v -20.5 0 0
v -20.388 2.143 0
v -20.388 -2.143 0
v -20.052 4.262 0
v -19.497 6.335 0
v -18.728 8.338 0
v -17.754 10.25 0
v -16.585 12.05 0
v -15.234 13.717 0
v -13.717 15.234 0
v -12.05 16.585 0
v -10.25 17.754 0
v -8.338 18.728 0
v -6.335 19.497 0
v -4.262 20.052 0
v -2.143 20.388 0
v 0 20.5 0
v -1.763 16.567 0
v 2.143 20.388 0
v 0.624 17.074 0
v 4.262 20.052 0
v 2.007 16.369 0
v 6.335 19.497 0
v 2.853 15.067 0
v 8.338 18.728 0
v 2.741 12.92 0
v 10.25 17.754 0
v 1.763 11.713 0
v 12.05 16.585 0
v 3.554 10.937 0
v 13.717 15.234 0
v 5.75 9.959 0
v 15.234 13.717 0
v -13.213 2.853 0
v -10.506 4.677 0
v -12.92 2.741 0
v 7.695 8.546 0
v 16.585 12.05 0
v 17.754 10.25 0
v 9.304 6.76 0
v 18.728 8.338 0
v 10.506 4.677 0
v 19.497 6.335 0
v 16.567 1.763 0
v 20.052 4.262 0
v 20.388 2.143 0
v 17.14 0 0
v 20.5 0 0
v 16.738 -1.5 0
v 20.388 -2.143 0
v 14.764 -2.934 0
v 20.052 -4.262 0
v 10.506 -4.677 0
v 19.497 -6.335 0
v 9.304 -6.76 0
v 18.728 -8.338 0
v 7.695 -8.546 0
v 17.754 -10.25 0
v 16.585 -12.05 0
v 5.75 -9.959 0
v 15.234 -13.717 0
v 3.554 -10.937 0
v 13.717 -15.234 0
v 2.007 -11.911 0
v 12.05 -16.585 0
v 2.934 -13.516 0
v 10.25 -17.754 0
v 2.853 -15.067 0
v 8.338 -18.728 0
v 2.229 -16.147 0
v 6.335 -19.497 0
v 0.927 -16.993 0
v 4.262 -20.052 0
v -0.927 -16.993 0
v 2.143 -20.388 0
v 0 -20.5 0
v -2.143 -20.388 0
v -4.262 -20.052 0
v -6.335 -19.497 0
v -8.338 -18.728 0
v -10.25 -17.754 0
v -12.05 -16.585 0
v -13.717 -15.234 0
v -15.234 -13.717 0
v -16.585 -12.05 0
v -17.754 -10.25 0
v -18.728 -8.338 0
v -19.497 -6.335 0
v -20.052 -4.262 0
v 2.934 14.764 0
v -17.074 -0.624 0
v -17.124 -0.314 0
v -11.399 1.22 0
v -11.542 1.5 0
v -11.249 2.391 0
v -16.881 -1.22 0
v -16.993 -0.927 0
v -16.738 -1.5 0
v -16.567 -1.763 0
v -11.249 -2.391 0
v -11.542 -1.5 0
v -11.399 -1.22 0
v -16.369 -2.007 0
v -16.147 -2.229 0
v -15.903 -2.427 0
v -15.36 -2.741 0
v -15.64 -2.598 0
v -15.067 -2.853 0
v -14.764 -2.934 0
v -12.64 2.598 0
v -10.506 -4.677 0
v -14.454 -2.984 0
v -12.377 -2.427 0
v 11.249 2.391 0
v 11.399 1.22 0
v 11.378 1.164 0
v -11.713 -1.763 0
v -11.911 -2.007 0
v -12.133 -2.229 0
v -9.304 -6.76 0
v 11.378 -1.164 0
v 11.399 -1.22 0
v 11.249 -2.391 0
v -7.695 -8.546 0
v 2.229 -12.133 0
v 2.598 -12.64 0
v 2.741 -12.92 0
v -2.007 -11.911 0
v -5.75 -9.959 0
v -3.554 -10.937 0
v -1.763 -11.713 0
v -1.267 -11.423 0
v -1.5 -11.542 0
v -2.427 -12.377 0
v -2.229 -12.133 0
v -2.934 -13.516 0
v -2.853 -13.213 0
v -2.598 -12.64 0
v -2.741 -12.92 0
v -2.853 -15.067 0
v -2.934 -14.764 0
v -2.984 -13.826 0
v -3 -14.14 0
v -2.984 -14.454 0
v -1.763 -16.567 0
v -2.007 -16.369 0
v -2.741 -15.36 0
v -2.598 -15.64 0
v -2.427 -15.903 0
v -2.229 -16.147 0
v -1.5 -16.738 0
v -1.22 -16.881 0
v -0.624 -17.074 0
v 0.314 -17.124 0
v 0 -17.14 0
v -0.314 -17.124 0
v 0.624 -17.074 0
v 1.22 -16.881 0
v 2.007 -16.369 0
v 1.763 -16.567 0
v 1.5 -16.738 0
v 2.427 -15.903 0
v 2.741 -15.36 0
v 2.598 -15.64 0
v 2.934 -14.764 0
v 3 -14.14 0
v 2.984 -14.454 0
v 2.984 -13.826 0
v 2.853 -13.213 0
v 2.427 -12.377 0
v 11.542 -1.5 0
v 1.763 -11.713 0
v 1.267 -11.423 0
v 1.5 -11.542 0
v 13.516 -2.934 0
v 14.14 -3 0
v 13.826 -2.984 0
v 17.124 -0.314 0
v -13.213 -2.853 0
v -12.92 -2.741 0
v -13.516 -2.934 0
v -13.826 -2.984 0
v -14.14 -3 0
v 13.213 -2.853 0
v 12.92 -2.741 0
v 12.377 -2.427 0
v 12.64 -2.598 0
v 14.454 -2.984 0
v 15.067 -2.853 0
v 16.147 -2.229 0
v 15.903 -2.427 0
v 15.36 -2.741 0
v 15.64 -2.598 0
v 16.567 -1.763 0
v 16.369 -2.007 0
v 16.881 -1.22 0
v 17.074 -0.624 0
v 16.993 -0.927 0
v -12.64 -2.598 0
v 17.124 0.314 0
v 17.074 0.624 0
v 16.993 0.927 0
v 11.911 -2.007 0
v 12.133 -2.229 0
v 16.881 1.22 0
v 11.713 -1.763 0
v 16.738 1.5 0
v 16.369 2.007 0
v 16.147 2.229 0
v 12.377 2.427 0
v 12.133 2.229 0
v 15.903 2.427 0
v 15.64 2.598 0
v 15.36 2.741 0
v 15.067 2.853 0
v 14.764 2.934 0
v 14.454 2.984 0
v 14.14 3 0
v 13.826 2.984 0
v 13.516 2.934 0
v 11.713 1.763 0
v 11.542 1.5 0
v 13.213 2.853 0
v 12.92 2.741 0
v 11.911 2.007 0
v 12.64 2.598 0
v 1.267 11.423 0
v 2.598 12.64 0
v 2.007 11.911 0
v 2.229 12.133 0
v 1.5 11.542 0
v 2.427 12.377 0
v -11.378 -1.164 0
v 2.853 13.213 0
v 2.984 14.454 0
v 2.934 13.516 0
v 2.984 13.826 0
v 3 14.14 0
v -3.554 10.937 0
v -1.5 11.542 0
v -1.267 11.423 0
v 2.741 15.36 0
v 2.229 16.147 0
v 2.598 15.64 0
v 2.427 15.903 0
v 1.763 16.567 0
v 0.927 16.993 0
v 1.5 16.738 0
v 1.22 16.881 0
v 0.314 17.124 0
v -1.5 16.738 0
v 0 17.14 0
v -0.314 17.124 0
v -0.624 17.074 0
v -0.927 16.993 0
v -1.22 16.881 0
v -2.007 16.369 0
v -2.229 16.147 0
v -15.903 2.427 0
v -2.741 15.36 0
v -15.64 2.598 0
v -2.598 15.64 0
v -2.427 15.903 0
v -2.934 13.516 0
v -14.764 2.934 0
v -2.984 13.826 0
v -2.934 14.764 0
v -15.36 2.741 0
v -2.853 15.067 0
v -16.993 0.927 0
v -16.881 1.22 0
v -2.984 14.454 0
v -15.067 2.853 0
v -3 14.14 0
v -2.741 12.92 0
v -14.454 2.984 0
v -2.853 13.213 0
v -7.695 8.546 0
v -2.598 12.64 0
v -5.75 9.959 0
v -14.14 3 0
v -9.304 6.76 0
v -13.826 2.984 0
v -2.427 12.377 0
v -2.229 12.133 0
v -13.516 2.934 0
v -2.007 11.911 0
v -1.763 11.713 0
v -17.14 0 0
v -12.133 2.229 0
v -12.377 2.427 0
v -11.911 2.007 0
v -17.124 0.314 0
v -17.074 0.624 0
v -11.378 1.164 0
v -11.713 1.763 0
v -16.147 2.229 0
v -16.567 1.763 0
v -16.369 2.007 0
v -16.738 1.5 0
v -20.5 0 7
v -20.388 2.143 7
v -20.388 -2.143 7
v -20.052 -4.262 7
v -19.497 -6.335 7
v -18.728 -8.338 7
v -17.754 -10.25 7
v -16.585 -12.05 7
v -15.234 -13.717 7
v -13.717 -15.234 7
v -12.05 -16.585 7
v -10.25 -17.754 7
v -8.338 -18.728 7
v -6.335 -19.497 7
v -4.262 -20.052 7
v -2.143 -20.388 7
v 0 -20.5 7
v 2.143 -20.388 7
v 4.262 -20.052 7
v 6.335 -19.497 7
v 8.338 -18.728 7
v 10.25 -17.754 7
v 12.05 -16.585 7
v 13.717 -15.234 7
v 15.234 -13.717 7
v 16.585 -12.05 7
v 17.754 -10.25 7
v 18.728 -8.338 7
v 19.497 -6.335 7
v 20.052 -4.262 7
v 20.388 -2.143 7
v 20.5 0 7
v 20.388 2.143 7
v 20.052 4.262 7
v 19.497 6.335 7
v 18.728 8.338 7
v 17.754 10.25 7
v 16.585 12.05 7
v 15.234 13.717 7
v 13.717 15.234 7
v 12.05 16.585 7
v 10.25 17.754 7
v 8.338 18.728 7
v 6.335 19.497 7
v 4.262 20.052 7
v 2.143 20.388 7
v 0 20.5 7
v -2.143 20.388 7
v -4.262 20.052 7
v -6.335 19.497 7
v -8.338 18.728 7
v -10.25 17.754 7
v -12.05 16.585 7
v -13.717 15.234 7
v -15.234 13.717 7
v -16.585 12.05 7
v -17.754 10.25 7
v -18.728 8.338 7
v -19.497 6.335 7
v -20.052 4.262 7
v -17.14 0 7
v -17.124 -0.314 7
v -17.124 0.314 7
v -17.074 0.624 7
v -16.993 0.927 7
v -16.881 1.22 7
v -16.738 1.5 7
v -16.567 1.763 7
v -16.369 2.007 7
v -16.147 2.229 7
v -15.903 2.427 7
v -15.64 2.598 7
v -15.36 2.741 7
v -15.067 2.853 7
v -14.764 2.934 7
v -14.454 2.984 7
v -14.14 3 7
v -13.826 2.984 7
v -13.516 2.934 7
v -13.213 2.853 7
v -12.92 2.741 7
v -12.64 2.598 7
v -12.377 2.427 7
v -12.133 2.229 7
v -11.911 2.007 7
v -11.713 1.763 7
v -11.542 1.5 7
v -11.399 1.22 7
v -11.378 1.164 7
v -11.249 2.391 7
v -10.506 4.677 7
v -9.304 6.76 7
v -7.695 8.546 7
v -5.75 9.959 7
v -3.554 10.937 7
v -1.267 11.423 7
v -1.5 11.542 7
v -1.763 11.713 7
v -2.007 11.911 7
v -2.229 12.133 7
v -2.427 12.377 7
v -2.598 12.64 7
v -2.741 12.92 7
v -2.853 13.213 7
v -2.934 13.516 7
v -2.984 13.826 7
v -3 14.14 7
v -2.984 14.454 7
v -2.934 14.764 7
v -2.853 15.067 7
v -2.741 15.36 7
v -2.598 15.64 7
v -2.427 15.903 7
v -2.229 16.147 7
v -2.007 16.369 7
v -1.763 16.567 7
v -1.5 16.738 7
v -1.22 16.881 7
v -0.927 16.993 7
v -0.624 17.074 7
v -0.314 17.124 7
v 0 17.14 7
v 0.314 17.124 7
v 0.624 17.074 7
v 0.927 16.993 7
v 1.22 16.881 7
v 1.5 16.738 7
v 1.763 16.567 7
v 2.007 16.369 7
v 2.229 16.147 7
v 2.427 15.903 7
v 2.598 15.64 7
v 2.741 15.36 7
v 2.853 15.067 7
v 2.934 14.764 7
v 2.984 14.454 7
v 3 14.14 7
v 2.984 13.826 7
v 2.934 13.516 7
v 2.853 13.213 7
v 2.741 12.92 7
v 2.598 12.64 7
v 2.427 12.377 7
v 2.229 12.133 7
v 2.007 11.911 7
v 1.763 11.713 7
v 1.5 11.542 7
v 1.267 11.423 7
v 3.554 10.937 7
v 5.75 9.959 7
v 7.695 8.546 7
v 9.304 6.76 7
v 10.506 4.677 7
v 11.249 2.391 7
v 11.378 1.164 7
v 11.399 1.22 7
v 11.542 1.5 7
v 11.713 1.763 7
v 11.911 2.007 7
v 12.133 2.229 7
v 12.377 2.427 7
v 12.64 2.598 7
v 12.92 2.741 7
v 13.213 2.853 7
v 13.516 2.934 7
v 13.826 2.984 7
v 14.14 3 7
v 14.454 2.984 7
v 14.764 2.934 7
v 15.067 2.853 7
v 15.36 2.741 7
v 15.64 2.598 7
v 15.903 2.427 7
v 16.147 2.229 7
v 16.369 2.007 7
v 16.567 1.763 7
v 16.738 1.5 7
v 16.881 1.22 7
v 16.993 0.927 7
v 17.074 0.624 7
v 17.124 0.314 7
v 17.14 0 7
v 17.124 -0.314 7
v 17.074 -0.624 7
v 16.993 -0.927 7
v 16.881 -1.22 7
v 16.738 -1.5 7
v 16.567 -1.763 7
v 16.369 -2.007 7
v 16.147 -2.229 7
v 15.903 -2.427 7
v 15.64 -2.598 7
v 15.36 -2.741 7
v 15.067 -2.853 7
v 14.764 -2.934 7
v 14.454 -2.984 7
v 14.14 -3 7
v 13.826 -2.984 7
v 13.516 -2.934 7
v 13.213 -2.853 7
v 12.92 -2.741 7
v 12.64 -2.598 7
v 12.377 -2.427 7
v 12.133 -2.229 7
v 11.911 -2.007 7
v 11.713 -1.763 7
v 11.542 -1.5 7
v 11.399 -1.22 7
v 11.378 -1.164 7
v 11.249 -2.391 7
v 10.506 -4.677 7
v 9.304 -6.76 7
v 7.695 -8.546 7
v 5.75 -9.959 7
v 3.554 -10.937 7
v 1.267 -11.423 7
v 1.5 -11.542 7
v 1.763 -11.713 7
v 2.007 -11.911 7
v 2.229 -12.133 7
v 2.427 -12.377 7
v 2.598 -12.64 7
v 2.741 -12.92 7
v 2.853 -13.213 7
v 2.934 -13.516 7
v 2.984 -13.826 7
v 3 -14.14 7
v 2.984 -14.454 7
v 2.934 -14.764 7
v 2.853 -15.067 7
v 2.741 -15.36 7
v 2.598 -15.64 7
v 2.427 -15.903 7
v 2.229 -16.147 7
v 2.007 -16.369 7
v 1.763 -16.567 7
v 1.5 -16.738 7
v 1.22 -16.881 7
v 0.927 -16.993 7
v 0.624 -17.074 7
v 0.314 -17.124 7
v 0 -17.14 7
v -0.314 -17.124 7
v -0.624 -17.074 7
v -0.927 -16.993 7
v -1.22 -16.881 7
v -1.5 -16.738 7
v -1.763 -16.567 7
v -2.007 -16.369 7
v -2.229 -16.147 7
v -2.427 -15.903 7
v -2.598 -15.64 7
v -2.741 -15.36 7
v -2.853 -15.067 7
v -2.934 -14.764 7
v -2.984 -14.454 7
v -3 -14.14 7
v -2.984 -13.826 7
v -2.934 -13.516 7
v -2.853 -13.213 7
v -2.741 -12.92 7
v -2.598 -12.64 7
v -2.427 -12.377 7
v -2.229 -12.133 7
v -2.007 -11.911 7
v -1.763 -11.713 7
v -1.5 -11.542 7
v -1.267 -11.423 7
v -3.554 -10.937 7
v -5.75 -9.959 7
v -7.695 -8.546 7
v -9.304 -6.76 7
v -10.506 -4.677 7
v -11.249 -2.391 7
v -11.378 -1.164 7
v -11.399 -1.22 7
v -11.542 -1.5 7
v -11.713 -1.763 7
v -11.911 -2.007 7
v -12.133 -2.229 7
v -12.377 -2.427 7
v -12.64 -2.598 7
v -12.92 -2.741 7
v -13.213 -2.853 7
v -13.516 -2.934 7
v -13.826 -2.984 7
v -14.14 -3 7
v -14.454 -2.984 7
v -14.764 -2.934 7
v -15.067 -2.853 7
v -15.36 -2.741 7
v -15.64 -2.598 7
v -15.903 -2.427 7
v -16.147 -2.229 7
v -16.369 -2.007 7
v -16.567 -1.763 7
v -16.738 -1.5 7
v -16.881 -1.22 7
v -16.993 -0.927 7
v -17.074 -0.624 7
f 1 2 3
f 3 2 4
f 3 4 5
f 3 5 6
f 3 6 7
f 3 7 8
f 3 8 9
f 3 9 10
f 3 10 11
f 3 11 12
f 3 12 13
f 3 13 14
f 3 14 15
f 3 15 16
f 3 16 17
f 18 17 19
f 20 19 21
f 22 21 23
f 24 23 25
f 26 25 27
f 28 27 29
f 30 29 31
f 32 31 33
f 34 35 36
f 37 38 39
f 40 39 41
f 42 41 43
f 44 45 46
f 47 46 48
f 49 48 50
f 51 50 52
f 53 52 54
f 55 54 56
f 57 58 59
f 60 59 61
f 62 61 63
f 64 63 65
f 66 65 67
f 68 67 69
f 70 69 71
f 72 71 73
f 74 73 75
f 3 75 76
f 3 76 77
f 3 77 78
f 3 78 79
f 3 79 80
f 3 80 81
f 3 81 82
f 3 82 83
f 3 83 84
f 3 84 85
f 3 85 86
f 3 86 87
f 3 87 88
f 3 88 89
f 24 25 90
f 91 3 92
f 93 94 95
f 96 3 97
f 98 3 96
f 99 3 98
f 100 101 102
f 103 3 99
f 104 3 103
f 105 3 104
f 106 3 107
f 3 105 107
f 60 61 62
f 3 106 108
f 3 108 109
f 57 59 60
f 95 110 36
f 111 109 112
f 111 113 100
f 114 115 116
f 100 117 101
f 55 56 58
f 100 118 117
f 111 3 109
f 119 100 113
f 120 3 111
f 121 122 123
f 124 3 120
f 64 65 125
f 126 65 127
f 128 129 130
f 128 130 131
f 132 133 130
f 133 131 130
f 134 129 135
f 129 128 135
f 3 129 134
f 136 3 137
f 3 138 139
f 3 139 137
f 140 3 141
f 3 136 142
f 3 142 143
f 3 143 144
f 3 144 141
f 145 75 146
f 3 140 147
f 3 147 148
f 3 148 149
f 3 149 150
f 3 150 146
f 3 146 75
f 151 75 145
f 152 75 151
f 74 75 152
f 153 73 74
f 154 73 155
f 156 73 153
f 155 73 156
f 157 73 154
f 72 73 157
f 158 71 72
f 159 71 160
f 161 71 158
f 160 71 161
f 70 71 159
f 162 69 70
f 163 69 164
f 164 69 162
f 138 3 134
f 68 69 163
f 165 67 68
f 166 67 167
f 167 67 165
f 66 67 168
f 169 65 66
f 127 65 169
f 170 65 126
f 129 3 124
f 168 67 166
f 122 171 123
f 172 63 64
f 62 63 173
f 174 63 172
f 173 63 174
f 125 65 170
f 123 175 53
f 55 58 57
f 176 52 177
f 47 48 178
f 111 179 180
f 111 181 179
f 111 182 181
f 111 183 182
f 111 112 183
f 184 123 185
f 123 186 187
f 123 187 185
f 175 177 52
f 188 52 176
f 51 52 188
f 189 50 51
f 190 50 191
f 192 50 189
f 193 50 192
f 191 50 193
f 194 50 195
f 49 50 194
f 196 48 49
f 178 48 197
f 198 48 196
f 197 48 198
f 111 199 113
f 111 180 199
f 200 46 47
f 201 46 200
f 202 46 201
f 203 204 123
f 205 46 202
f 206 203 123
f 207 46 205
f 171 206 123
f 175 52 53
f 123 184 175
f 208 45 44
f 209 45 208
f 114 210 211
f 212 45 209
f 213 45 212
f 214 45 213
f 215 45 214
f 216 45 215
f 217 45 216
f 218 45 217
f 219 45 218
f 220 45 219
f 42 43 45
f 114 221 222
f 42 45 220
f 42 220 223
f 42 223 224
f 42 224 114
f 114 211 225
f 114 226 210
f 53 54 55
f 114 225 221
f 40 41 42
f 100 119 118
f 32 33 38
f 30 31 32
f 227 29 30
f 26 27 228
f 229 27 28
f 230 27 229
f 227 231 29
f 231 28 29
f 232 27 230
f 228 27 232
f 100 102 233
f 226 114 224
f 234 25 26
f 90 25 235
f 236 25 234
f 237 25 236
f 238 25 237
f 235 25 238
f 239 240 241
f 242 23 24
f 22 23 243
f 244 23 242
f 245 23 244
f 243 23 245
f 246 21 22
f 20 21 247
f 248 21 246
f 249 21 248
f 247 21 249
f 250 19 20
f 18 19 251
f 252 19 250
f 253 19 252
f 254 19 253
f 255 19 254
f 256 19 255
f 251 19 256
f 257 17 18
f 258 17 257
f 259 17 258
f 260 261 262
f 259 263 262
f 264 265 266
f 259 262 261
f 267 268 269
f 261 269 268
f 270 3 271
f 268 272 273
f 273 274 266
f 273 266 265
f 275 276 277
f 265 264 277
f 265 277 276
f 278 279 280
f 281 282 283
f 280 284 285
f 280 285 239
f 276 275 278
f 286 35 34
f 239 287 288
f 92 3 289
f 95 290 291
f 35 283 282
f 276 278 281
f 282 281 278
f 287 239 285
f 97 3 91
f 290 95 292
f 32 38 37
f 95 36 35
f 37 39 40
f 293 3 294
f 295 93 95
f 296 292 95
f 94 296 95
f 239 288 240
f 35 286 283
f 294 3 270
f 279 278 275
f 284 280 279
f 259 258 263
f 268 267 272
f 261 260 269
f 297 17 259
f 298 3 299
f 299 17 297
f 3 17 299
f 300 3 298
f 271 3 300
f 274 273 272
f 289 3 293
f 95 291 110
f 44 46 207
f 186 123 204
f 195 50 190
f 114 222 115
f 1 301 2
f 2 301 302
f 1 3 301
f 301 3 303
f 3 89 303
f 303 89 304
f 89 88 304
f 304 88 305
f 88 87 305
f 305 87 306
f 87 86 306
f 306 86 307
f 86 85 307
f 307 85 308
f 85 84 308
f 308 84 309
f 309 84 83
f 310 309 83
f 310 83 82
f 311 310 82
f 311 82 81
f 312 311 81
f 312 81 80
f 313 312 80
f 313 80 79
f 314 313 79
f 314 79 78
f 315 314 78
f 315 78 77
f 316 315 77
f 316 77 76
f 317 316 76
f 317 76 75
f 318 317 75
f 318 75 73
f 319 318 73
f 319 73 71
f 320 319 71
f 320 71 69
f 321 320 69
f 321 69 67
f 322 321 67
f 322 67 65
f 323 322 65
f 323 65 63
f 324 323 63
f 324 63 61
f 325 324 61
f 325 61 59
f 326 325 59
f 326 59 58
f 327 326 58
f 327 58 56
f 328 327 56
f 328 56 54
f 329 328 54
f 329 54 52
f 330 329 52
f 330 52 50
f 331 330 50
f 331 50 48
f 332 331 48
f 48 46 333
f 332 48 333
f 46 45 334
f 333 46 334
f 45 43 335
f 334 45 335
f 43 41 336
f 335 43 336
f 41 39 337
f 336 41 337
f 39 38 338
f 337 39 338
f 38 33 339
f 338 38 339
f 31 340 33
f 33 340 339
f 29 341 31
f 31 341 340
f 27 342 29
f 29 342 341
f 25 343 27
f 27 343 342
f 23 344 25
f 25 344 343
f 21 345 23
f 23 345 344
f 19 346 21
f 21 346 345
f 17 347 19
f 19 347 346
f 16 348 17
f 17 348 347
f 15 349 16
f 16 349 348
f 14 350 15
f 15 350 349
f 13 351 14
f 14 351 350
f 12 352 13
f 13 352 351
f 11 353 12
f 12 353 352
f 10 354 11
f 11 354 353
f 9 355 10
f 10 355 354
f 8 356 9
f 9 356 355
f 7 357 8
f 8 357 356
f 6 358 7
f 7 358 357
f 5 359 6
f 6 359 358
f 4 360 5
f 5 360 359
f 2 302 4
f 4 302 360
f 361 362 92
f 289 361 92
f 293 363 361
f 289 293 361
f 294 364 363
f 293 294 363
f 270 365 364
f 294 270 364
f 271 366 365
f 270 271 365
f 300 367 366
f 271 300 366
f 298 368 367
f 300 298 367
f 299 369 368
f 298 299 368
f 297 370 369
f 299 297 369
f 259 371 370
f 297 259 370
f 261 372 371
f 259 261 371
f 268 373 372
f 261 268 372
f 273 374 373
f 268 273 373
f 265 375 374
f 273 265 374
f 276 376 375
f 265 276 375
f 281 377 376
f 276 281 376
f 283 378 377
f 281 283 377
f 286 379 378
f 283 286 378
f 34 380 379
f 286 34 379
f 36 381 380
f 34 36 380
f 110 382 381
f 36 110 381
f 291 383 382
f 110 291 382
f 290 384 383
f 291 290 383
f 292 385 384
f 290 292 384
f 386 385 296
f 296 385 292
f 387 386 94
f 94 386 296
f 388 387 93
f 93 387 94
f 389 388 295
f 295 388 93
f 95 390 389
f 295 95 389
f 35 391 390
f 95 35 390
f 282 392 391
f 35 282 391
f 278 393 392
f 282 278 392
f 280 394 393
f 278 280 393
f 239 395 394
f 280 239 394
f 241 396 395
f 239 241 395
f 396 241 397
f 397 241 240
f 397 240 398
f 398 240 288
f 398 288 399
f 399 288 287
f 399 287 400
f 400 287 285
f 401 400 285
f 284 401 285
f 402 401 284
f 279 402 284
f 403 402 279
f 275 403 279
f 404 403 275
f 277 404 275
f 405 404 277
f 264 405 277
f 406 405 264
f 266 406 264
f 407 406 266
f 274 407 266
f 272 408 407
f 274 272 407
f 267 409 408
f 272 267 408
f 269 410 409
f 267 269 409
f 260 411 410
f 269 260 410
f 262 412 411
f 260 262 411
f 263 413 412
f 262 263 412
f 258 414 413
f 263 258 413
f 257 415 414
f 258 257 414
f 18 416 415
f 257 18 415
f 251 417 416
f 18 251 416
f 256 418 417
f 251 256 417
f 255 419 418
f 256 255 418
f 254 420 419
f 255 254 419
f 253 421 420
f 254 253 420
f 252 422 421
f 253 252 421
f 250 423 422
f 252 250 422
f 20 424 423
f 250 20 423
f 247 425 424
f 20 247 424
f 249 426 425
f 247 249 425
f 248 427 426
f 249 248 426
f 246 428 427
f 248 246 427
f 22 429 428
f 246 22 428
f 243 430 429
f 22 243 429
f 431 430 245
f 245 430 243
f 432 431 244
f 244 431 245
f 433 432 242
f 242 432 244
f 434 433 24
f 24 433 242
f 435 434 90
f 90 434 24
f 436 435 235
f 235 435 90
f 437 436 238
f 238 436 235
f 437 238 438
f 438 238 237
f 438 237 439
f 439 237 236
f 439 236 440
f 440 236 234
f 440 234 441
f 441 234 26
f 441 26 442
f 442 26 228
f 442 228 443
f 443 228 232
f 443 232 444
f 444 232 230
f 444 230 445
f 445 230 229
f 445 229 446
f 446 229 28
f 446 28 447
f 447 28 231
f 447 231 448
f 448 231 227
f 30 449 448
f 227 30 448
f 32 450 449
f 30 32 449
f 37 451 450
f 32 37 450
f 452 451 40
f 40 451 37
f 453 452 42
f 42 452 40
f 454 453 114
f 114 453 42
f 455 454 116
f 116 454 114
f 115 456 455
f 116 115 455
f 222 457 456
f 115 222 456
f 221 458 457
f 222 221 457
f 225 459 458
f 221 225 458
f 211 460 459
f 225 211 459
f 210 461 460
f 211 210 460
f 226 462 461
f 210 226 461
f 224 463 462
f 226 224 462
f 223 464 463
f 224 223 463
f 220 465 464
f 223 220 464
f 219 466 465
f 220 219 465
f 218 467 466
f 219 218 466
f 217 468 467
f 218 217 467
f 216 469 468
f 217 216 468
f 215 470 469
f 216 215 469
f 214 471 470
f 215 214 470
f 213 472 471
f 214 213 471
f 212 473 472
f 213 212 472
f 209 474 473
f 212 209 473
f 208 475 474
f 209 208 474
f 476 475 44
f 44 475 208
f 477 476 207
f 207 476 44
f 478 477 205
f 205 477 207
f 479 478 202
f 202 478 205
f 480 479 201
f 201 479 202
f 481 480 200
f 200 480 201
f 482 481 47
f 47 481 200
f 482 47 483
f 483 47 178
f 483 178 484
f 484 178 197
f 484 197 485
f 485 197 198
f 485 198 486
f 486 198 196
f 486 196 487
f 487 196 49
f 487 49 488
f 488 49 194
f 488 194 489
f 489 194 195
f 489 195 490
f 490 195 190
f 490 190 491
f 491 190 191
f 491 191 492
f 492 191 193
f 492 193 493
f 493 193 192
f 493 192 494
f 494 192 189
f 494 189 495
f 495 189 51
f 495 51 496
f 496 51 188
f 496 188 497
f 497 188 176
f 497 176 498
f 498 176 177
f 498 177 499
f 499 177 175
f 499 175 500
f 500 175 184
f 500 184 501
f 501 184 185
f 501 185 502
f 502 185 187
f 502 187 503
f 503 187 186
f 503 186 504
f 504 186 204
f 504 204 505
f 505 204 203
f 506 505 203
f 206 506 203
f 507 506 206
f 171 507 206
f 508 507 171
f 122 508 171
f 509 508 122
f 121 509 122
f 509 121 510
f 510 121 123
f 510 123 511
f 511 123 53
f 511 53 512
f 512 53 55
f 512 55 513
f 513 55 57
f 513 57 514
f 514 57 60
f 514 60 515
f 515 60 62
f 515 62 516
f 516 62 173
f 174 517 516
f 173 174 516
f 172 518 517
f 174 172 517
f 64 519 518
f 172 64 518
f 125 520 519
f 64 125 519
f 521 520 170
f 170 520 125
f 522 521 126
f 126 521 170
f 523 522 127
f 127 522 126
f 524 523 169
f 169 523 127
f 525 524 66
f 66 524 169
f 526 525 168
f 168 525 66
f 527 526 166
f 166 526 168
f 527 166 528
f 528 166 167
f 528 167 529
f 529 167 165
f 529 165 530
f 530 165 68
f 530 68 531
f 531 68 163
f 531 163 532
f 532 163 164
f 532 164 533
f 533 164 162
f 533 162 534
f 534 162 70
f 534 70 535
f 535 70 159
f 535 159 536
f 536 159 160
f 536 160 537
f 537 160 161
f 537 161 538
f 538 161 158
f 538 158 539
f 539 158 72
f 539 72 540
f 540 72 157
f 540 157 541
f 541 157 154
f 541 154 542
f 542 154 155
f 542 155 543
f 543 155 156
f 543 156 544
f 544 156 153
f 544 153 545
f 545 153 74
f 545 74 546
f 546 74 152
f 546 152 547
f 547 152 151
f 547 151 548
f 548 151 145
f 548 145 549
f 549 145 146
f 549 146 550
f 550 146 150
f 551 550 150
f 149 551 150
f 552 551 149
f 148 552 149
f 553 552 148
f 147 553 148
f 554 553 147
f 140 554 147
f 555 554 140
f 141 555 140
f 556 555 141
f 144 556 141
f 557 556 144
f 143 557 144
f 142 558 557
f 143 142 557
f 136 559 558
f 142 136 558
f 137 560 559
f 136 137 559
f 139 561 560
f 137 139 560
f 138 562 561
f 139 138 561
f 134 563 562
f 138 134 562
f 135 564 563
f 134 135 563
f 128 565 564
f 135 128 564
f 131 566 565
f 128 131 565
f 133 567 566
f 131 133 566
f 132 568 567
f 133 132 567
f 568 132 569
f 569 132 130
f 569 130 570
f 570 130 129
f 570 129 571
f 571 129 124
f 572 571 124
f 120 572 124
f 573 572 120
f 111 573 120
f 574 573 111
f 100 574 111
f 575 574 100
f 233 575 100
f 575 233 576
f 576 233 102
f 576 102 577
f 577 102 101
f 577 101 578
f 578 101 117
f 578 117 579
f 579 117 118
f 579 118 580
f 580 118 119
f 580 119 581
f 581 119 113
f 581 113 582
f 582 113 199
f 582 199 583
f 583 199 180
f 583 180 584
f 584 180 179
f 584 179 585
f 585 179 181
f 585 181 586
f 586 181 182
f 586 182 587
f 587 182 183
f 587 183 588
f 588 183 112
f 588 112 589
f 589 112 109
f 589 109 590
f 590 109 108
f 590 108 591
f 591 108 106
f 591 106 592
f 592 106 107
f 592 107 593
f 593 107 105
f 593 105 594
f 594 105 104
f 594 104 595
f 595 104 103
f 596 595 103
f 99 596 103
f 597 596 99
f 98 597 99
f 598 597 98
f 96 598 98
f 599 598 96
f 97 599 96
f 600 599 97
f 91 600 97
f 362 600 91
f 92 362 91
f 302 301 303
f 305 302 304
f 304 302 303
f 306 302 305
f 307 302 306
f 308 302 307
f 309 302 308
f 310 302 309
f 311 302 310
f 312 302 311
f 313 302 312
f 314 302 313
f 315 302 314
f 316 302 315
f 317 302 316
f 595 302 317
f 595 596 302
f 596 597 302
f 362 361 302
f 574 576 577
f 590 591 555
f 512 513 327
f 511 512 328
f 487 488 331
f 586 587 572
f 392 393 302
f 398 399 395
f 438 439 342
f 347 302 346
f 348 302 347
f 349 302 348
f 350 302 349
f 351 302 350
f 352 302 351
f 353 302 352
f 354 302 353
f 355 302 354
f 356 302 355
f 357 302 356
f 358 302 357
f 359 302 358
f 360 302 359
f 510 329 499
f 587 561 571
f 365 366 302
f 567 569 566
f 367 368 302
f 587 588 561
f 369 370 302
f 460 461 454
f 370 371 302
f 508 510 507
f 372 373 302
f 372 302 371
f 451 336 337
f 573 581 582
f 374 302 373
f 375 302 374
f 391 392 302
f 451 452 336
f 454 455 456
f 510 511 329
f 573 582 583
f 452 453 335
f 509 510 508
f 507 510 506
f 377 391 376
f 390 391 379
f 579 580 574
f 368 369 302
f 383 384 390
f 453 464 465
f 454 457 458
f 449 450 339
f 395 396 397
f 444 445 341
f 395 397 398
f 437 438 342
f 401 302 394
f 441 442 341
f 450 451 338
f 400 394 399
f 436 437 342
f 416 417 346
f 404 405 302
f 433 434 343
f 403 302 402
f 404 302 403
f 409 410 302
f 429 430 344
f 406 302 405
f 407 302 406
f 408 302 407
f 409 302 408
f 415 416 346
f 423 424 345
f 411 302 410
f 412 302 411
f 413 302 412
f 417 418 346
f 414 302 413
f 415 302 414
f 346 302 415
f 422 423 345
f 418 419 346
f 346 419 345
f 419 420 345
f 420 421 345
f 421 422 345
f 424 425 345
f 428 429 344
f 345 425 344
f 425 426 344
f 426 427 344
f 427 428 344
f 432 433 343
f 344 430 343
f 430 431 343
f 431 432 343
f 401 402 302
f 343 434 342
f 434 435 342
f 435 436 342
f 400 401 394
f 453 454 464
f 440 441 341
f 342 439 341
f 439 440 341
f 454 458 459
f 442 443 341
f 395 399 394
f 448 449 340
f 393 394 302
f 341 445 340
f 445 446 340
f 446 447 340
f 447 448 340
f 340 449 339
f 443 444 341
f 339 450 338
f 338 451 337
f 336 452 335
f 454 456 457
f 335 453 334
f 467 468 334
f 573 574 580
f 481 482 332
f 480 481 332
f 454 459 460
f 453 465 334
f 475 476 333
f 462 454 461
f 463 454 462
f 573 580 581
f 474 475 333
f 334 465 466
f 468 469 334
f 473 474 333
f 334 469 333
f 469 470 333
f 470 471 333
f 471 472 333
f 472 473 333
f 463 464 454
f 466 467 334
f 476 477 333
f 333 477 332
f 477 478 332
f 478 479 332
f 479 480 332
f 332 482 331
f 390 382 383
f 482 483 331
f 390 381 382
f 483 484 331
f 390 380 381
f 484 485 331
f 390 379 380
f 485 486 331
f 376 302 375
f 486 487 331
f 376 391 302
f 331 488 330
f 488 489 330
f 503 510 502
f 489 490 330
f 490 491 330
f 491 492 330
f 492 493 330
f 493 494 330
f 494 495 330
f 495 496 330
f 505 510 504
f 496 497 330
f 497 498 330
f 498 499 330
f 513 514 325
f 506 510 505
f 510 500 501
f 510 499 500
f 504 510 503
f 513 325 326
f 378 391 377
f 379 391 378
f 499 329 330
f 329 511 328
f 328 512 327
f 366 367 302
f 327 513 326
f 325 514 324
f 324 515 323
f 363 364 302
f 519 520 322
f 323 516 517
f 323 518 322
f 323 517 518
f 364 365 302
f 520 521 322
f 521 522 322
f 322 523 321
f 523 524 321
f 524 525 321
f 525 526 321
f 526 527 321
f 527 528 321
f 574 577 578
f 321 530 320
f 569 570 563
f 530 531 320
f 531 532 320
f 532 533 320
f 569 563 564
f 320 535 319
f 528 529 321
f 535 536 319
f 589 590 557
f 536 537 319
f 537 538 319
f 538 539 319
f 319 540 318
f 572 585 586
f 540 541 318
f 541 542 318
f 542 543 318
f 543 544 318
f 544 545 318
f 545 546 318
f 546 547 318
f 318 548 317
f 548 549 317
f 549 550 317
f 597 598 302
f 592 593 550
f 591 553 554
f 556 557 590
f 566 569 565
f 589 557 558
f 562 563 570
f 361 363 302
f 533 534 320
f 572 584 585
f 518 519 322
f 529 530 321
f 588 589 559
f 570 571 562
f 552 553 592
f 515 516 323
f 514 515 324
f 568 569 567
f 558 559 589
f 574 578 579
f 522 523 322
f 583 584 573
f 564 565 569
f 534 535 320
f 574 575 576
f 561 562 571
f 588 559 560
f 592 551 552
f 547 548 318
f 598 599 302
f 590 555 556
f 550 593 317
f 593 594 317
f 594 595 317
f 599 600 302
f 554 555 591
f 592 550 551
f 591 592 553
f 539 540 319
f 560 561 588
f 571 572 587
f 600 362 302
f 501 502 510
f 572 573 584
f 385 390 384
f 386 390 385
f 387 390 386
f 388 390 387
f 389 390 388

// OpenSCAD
d=1;
difference() {
	cylinder(7,r=(40+d)/2,$fn=60);
	translate([0,0,-1]) {
		cylinder(9,r=(22+d)/2,$fn=30);
		translate([28.28/2,0,0])cylinder(9,r=(5+d)/2,$fn=60);
		translate([0,28.28/2,0])cylinder(9,r=(5+d)/2,$fn=60);
		translate([-28.28/2,0,0])cylinder(9,r=(5+d)/2,$fn=60);
		translate([0,-28.28/2,0])cylinder(9,r=(5+d)/2,$fn=60);
	}
}
